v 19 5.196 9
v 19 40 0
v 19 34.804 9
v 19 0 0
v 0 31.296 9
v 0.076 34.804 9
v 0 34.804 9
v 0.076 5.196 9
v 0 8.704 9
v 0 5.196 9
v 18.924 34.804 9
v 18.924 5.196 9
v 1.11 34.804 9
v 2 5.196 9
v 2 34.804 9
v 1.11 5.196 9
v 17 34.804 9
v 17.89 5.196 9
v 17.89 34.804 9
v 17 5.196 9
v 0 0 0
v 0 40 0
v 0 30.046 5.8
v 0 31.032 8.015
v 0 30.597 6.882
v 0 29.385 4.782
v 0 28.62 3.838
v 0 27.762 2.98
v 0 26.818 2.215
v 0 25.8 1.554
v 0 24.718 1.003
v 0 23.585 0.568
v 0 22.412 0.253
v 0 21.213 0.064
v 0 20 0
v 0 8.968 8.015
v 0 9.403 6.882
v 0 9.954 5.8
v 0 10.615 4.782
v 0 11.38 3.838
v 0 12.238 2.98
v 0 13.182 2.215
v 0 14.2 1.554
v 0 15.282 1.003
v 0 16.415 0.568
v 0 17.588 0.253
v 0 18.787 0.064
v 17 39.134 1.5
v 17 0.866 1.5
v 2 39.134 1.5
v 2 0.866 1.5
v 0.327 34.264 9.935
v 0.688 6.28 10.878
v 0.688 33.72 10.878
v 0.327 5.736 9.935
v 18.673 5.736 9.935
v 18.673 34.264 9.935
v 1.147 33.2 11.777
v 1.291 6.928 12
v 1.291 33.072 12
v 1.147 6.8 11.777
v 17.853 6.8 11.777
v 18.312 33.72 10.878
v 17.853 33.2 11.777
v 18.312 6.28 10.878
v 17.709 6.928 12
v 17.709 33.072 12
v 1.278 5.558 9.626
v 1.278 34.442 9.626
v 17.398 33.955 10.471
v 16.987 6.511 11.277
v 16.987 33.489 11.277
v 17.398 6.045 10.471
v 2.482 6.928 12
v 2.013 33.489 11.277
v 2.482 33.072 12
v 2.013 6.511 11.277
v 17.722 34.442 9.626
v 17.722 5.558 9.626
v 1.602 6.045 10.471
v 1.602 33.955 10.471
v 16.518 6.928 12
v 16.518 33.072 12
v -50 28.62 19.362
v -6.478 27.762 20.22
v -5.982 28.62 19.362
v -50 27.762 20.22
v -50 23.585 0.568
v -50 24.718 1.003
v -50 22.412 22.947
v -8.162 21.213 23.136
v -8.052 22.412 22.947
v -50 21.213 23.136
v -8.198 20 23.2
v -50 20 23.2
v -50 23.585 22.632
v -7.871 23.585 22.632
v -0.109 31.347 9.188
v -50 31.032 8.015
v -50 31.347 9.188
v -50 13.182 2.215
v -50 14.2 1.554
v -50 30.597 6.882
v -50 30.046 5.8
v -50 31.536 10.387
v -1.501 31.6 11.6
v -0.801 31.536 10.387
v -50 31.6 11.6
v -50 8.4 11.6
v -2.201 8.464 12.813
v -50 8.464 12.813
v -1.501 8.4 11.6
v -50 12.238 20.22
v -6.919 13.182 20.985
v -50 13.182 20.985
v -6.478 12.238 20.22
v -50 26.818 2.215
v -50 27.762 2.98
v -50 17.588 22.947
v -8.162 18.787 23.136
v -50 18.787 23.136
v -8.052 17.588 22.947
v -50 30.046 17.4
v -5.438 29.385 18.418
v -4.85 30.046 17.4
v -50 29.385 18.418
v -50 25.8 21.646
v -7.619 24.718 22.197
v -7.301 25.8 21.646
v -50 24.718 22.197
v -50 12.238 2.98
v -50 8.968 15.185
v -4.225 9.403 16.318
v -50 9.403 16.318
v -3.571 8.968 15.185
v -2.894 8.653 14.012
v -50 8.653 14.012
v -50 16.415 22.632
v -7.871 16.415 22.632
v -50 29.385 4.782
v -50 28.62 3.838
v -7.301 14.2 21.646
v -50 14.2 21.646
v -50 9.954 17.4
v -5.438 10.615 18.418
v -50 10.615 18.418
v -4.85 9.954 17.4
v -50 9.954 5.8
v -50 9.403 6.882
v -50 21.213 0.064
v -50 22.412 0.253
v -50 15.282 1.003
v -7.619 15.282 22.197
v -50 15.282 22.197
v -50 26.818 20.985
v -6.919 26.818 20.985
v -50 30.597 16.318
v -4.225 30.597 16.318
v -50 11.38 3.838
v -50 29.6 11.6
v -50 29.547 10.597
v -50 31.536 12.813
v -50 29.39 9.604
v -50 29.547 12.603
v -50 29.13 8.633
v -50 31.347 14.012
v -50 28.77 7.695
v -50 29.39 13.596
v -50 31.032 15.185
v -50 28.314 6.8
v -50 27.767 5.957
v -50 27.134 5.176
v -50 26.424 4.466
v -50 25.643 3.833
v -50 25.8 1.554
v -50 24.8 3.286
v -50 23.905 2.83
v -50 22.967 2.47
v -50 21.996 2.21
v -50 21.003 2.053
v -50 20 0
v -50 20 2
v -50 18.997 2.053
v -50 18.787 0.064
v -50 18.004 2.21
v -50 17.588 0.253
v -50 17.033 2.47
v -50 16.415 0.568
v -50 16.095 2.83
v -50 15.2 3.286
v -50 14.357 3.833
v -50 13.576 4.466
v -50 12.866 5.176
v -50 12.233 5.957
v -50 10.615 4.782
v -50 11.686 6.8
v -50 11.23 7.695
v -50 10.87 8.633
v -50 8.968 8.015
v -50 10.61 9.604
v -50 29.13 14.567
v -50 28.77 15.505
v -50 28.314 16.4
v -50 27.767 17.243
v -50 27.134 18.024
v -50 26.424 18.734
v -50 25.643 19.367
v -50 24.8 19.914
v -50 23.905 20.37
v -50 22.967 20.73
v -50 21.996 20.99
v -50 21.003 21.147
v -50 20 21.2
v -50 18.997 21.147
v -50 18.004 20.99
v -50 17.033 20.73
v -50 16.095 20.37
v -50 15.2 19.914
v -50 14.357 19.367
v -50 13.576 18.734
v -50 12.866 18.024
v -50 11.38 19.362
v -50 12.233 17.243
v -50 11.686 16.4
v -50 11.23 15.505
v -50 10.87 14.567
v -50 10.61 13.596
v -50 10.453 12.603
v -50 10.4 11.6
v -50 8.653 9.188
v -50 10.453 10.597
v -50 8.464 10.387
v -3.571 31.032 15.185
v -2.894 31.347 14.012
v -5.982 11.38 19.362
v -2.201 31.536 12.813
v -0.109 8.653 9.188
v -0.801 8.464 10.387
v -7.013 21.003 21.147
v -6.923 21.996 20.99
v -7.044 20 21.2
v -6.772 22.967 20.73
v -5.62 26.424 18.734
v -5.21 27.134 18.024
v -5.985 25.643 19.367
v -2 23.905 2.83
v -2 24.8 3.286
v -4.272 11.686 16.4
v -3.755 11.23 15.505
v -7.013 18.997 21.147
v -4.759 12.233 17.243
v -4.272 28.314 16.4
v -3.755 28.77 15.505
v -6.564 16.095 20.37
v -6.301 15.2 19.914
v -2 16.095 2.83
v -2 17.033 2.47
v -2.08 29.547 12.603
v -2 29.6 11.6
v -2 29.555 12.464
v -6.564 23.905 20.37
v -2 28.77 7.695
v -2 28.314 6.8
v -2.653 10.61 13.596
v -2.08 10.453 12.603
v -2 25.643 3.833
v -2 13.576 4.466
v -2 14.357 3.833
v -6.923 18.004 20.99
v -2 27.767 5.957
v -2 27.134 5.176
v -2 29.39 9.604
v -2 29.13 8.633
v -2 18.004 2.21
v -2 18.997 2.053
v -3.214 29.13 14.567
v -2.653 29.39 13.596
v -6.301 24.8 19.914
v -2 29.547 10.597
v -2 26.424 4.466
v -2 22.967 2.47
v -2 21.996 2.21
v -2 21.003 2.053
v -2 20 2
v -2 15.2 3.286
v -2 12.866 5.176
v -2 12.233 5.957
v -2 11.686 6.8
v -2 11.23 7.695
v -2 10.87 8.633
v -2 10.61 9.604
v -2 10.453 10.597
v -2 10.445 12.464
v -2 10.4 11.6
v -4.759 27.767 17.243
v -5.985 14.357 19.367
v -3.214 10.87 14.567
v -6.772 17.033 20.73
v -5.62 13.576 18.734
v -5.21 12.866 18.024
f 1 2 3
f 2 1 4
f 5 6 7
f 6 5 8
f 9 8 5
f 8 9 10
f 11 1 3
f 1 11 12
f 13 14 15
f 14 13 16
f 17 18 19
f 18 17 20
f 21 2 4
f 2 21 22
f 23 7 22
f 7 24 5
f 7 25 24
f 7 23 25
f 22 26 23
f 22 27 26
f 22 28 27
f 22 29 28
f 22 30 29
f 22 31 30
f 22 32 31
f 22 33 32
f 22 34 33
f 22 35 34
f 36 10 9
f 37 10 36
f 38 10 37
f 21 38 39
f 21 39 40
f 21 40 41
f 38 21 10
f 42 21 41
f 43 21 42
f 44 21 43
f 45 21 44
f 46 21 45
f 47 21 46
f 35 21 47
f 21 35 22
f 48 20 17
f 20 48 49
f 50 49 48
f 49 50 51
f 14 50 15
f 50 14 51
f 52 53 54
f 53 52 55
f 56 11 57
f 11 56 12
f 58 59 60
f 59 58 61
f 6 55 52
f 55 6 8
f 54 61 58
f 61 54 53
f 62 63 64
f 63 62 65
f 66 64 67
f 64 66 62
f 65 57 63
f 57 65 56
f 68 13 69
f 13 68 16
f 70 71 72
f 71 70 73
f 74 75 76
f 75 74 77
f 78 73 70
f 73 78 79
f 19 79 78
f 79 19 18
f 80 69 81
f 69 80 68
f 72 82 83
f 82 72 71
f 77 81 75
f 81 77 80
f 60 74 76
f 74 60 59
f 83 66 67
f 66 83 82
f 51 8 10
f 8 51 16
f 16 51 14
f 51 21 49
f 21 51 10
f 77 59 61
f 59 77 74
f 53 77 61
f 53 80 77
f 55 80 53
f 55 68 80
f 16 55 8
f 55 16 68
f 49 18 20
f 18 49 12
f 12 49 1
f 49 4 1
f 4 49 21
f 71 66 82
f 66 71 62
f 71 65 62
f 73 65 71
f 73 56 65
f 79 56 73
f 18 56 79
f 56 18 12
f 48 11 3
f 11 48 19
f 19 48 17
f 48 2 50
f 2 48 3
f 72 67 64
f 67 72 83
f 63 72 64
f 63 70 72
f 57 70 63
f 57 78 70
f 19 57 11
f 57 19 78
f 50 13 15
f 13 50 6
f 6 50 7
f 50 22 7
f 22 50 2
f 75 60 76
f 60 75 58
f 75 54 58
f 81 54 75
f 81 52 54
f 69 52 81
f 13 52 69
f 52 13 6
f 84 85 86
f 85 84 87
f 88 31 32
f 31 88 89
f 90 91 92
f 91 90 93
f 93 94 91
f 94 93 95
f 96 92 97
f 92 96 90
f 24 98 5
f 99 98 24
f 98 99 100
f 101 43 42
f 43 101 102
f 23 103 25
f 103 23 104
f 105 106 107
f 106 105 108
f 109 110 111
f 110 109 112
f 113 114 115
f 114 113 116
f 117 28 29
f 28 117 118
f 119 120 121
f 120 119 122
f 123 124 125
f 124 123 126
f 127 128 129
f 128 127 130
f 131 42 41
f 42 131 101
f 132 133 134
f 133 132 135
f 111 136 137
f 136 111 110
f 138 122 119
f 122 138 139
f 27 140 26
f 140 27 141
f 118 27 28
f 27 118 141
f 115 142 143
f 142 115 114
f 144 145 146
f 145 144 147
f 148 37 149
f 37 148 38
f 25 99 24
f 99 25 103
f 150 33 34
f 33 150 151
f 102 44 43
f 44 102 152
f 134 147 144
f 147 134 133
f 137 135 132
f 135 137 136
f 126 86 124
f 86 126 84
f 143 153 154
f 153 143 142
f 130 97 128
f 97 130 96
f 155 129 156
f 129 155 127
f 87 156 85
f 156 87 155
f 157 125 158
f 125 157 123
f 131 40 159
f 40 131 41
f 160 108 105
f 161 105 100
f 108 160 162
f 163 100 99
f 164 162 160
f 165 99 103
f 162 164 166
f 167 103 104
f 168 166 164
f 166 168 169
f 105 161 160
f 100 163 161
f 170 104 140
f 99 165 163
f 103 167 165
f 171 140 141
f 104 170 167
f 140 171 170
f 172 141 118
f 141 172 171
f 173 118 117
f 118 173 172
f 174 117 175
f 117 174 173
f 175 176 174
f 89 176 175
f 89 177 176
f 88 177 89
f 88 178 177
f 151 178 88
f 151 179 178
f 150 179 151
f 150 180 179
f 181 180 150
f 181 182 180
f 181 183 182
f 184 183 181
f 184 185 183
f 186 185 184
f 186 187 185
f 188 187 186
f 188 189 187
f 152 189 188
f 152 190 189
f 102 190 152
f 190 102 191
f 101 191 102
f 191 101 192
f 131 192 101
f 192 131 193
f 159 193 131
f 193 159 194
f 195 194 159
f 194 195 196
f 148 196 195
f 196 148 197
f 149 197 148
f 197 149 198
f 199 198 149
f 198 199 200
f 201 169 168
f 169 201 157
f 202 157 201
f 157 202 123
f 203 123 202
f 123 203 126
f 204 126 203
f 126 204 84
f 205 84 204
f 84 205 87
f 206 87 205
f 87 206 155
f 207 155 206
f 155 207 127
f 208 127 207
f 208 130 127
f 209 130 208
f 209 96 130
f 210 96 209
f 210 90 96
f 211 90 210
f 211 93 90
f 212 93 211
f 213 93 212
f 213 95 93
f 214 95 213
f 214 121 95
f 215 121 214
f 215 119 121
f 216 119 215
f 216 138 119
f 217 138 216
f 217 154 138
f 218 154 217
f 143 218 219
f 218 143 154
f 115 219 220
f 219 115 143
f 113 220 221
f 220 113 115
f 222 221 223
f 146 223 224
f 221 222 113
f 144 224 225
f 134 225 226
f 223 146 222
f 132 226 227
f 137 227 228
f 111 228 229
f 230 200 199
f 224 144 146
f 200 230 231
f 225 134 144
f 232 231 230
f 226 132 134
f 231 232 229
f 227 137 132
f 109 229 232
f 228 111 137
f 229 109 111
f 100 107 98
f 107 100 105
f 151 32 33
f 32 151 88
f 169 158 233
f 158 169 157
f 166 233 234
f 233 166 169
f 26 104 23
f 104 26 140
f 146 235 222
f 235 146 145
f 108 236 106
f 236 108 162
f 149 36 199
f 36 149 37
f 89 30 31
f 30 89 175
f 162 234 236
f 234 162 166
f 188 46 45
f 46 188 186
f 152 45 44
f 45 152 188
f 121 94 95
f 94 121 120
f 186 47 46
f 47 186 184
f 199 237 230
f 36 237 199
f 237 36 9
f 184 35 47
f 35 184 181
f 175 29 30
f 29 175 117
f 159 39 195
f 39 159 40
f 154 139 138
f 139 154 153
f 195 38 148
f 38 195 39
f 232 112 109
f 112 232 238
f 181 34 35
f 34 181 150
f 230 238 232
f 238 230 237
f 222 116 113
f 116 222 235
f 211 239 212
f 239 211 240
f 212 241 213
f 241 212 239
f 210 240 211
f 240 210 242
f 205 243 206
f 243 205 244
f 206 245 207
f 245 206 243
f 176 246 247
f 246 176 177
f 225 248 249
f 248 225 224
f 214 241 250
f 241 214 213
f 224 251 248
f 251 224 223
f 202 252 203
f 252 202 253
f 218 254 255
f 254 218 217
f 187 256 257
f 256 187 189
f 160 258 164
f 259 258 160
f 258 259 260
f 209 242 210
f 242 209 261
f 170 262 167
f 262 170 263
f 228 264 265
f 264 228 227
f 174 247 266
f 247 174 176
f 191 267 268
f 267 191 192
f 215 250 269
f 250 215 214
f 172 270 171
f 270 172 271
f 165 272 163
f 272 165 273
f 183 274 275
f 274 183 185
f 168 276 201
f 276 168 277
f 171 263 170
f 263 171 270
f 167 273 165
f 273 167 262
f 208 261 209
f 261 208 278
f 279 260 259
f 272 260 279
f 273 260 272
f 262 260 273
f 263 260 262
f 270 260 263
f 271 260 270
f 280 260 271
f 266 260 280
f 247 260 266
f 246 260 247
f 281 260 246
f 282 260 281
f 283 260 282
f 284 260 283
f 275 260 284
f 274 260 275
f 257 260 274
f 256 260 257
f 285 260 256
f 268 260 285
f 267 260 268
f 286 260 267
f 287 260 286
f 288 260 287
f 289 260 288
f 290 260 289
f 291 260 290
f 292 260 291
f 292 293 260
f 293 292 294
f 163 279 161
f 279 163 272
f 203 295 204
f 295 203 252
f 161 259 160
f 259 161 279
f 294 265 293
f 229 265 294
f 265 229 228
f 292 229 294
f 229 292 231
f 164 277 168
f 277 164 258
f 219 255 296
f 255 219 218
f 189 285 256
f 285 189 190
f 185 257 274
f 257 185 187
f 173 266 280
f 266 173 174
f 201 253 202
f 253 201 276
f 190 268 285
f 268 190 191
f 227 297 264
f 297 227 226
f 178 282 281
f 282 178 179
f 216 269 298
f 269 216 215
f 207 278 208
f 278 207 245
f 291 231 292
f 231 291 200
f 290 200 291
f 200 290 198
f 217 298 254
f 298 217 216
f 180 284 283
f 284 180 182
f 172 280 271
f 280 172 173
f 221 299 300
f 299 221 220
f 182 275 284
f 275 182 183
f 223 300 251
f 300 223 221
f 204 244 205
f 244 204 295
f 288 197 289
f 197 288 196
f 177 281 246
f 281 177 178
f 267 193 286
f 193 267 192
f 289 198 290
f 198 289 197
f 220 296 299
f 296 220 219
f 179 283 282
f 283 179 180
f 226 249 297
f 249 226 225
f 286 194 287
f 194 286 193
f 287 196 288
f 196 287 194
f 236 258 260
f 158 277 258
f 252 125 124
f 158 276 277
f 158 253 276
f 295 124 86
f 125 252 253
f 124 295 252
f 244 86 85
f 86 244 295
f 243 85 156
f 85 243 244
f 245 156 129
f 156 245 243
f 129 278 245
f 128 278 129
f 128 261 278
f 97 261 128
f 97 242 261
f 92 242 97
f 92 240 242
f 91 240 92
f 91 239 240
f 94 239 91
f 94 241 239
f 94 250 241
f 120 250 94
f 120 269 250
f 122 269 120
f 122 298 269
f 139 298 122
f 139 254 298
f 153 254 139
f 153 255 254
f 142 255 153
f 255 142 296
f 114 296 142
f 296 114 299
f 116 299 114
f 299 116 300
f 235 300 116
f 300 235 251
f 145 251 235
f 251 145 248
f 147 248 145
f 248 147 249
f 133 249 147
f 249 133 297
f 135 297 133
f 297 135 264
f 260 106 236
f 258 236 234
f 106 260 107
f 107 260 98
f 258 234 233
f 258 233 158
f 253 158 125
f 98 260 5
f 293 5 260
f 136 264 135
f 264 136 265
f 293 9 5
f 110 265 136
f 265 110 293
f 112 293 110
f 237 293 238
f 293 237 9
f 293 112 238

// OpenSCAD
$fn=60;
length = 40;
outer_width = 19;
wire_hole_diameter=5;
top_radius = 8.64545;


difference(){
    union(){ // mushroom shaped tube
        difference(){ // U profile
            cube([outer_width, length, 9]);
            translate([2, 0, 1.5]) cube([15, length, 9]);
        }
        translate([0, 0, 9]) difference(){ // half tube top
            translate([8.4 + 1.1, 0, 6.6 - top_radius]) 
            rotate([270, 0, 0]){ // full tube
                difference(){
                    cylinder(h=length, r=top_radius+1);
                    cylinder(h=length, r=top_radius);
                }
            }
            // cut bottom part
            translate([-20, 0, -20]) cube([40, length, 20]);
            // cut top part
            translate([-20, 0, 3]) cube([40, length, 20]);
        }
    }
    // slated ends
    rotate([-30, 0, 0]) translate([0, -30, 0]) cube([outer_width, 30, 50]);
    translate([0, length, 0]) rotate([30, 0, 0]) cube([outer_width, 30, 50]);
    // wire hole in the center
    //translate([0, length/2, 5]) rotate([0, 90, 0]) cylinder(h=10, d=wire_hole_diameter);
}

difference(){
    translate([0, length/2, 19.2/2+2]) rotate([0, 270, 0]) difference(){
        cylinder(h=50, r=19.2/2+2);
        translate([0, 0, 2]) cylinder(h=50, r=19.2/2);
    }
    // slated end
    //rotate([-30, 0, 0]) translate([0, -30, 0]) 
    translate([0, 0, 9]) rotate([0, -30, 0]) cube([outer_width, 50, 50]);
}
